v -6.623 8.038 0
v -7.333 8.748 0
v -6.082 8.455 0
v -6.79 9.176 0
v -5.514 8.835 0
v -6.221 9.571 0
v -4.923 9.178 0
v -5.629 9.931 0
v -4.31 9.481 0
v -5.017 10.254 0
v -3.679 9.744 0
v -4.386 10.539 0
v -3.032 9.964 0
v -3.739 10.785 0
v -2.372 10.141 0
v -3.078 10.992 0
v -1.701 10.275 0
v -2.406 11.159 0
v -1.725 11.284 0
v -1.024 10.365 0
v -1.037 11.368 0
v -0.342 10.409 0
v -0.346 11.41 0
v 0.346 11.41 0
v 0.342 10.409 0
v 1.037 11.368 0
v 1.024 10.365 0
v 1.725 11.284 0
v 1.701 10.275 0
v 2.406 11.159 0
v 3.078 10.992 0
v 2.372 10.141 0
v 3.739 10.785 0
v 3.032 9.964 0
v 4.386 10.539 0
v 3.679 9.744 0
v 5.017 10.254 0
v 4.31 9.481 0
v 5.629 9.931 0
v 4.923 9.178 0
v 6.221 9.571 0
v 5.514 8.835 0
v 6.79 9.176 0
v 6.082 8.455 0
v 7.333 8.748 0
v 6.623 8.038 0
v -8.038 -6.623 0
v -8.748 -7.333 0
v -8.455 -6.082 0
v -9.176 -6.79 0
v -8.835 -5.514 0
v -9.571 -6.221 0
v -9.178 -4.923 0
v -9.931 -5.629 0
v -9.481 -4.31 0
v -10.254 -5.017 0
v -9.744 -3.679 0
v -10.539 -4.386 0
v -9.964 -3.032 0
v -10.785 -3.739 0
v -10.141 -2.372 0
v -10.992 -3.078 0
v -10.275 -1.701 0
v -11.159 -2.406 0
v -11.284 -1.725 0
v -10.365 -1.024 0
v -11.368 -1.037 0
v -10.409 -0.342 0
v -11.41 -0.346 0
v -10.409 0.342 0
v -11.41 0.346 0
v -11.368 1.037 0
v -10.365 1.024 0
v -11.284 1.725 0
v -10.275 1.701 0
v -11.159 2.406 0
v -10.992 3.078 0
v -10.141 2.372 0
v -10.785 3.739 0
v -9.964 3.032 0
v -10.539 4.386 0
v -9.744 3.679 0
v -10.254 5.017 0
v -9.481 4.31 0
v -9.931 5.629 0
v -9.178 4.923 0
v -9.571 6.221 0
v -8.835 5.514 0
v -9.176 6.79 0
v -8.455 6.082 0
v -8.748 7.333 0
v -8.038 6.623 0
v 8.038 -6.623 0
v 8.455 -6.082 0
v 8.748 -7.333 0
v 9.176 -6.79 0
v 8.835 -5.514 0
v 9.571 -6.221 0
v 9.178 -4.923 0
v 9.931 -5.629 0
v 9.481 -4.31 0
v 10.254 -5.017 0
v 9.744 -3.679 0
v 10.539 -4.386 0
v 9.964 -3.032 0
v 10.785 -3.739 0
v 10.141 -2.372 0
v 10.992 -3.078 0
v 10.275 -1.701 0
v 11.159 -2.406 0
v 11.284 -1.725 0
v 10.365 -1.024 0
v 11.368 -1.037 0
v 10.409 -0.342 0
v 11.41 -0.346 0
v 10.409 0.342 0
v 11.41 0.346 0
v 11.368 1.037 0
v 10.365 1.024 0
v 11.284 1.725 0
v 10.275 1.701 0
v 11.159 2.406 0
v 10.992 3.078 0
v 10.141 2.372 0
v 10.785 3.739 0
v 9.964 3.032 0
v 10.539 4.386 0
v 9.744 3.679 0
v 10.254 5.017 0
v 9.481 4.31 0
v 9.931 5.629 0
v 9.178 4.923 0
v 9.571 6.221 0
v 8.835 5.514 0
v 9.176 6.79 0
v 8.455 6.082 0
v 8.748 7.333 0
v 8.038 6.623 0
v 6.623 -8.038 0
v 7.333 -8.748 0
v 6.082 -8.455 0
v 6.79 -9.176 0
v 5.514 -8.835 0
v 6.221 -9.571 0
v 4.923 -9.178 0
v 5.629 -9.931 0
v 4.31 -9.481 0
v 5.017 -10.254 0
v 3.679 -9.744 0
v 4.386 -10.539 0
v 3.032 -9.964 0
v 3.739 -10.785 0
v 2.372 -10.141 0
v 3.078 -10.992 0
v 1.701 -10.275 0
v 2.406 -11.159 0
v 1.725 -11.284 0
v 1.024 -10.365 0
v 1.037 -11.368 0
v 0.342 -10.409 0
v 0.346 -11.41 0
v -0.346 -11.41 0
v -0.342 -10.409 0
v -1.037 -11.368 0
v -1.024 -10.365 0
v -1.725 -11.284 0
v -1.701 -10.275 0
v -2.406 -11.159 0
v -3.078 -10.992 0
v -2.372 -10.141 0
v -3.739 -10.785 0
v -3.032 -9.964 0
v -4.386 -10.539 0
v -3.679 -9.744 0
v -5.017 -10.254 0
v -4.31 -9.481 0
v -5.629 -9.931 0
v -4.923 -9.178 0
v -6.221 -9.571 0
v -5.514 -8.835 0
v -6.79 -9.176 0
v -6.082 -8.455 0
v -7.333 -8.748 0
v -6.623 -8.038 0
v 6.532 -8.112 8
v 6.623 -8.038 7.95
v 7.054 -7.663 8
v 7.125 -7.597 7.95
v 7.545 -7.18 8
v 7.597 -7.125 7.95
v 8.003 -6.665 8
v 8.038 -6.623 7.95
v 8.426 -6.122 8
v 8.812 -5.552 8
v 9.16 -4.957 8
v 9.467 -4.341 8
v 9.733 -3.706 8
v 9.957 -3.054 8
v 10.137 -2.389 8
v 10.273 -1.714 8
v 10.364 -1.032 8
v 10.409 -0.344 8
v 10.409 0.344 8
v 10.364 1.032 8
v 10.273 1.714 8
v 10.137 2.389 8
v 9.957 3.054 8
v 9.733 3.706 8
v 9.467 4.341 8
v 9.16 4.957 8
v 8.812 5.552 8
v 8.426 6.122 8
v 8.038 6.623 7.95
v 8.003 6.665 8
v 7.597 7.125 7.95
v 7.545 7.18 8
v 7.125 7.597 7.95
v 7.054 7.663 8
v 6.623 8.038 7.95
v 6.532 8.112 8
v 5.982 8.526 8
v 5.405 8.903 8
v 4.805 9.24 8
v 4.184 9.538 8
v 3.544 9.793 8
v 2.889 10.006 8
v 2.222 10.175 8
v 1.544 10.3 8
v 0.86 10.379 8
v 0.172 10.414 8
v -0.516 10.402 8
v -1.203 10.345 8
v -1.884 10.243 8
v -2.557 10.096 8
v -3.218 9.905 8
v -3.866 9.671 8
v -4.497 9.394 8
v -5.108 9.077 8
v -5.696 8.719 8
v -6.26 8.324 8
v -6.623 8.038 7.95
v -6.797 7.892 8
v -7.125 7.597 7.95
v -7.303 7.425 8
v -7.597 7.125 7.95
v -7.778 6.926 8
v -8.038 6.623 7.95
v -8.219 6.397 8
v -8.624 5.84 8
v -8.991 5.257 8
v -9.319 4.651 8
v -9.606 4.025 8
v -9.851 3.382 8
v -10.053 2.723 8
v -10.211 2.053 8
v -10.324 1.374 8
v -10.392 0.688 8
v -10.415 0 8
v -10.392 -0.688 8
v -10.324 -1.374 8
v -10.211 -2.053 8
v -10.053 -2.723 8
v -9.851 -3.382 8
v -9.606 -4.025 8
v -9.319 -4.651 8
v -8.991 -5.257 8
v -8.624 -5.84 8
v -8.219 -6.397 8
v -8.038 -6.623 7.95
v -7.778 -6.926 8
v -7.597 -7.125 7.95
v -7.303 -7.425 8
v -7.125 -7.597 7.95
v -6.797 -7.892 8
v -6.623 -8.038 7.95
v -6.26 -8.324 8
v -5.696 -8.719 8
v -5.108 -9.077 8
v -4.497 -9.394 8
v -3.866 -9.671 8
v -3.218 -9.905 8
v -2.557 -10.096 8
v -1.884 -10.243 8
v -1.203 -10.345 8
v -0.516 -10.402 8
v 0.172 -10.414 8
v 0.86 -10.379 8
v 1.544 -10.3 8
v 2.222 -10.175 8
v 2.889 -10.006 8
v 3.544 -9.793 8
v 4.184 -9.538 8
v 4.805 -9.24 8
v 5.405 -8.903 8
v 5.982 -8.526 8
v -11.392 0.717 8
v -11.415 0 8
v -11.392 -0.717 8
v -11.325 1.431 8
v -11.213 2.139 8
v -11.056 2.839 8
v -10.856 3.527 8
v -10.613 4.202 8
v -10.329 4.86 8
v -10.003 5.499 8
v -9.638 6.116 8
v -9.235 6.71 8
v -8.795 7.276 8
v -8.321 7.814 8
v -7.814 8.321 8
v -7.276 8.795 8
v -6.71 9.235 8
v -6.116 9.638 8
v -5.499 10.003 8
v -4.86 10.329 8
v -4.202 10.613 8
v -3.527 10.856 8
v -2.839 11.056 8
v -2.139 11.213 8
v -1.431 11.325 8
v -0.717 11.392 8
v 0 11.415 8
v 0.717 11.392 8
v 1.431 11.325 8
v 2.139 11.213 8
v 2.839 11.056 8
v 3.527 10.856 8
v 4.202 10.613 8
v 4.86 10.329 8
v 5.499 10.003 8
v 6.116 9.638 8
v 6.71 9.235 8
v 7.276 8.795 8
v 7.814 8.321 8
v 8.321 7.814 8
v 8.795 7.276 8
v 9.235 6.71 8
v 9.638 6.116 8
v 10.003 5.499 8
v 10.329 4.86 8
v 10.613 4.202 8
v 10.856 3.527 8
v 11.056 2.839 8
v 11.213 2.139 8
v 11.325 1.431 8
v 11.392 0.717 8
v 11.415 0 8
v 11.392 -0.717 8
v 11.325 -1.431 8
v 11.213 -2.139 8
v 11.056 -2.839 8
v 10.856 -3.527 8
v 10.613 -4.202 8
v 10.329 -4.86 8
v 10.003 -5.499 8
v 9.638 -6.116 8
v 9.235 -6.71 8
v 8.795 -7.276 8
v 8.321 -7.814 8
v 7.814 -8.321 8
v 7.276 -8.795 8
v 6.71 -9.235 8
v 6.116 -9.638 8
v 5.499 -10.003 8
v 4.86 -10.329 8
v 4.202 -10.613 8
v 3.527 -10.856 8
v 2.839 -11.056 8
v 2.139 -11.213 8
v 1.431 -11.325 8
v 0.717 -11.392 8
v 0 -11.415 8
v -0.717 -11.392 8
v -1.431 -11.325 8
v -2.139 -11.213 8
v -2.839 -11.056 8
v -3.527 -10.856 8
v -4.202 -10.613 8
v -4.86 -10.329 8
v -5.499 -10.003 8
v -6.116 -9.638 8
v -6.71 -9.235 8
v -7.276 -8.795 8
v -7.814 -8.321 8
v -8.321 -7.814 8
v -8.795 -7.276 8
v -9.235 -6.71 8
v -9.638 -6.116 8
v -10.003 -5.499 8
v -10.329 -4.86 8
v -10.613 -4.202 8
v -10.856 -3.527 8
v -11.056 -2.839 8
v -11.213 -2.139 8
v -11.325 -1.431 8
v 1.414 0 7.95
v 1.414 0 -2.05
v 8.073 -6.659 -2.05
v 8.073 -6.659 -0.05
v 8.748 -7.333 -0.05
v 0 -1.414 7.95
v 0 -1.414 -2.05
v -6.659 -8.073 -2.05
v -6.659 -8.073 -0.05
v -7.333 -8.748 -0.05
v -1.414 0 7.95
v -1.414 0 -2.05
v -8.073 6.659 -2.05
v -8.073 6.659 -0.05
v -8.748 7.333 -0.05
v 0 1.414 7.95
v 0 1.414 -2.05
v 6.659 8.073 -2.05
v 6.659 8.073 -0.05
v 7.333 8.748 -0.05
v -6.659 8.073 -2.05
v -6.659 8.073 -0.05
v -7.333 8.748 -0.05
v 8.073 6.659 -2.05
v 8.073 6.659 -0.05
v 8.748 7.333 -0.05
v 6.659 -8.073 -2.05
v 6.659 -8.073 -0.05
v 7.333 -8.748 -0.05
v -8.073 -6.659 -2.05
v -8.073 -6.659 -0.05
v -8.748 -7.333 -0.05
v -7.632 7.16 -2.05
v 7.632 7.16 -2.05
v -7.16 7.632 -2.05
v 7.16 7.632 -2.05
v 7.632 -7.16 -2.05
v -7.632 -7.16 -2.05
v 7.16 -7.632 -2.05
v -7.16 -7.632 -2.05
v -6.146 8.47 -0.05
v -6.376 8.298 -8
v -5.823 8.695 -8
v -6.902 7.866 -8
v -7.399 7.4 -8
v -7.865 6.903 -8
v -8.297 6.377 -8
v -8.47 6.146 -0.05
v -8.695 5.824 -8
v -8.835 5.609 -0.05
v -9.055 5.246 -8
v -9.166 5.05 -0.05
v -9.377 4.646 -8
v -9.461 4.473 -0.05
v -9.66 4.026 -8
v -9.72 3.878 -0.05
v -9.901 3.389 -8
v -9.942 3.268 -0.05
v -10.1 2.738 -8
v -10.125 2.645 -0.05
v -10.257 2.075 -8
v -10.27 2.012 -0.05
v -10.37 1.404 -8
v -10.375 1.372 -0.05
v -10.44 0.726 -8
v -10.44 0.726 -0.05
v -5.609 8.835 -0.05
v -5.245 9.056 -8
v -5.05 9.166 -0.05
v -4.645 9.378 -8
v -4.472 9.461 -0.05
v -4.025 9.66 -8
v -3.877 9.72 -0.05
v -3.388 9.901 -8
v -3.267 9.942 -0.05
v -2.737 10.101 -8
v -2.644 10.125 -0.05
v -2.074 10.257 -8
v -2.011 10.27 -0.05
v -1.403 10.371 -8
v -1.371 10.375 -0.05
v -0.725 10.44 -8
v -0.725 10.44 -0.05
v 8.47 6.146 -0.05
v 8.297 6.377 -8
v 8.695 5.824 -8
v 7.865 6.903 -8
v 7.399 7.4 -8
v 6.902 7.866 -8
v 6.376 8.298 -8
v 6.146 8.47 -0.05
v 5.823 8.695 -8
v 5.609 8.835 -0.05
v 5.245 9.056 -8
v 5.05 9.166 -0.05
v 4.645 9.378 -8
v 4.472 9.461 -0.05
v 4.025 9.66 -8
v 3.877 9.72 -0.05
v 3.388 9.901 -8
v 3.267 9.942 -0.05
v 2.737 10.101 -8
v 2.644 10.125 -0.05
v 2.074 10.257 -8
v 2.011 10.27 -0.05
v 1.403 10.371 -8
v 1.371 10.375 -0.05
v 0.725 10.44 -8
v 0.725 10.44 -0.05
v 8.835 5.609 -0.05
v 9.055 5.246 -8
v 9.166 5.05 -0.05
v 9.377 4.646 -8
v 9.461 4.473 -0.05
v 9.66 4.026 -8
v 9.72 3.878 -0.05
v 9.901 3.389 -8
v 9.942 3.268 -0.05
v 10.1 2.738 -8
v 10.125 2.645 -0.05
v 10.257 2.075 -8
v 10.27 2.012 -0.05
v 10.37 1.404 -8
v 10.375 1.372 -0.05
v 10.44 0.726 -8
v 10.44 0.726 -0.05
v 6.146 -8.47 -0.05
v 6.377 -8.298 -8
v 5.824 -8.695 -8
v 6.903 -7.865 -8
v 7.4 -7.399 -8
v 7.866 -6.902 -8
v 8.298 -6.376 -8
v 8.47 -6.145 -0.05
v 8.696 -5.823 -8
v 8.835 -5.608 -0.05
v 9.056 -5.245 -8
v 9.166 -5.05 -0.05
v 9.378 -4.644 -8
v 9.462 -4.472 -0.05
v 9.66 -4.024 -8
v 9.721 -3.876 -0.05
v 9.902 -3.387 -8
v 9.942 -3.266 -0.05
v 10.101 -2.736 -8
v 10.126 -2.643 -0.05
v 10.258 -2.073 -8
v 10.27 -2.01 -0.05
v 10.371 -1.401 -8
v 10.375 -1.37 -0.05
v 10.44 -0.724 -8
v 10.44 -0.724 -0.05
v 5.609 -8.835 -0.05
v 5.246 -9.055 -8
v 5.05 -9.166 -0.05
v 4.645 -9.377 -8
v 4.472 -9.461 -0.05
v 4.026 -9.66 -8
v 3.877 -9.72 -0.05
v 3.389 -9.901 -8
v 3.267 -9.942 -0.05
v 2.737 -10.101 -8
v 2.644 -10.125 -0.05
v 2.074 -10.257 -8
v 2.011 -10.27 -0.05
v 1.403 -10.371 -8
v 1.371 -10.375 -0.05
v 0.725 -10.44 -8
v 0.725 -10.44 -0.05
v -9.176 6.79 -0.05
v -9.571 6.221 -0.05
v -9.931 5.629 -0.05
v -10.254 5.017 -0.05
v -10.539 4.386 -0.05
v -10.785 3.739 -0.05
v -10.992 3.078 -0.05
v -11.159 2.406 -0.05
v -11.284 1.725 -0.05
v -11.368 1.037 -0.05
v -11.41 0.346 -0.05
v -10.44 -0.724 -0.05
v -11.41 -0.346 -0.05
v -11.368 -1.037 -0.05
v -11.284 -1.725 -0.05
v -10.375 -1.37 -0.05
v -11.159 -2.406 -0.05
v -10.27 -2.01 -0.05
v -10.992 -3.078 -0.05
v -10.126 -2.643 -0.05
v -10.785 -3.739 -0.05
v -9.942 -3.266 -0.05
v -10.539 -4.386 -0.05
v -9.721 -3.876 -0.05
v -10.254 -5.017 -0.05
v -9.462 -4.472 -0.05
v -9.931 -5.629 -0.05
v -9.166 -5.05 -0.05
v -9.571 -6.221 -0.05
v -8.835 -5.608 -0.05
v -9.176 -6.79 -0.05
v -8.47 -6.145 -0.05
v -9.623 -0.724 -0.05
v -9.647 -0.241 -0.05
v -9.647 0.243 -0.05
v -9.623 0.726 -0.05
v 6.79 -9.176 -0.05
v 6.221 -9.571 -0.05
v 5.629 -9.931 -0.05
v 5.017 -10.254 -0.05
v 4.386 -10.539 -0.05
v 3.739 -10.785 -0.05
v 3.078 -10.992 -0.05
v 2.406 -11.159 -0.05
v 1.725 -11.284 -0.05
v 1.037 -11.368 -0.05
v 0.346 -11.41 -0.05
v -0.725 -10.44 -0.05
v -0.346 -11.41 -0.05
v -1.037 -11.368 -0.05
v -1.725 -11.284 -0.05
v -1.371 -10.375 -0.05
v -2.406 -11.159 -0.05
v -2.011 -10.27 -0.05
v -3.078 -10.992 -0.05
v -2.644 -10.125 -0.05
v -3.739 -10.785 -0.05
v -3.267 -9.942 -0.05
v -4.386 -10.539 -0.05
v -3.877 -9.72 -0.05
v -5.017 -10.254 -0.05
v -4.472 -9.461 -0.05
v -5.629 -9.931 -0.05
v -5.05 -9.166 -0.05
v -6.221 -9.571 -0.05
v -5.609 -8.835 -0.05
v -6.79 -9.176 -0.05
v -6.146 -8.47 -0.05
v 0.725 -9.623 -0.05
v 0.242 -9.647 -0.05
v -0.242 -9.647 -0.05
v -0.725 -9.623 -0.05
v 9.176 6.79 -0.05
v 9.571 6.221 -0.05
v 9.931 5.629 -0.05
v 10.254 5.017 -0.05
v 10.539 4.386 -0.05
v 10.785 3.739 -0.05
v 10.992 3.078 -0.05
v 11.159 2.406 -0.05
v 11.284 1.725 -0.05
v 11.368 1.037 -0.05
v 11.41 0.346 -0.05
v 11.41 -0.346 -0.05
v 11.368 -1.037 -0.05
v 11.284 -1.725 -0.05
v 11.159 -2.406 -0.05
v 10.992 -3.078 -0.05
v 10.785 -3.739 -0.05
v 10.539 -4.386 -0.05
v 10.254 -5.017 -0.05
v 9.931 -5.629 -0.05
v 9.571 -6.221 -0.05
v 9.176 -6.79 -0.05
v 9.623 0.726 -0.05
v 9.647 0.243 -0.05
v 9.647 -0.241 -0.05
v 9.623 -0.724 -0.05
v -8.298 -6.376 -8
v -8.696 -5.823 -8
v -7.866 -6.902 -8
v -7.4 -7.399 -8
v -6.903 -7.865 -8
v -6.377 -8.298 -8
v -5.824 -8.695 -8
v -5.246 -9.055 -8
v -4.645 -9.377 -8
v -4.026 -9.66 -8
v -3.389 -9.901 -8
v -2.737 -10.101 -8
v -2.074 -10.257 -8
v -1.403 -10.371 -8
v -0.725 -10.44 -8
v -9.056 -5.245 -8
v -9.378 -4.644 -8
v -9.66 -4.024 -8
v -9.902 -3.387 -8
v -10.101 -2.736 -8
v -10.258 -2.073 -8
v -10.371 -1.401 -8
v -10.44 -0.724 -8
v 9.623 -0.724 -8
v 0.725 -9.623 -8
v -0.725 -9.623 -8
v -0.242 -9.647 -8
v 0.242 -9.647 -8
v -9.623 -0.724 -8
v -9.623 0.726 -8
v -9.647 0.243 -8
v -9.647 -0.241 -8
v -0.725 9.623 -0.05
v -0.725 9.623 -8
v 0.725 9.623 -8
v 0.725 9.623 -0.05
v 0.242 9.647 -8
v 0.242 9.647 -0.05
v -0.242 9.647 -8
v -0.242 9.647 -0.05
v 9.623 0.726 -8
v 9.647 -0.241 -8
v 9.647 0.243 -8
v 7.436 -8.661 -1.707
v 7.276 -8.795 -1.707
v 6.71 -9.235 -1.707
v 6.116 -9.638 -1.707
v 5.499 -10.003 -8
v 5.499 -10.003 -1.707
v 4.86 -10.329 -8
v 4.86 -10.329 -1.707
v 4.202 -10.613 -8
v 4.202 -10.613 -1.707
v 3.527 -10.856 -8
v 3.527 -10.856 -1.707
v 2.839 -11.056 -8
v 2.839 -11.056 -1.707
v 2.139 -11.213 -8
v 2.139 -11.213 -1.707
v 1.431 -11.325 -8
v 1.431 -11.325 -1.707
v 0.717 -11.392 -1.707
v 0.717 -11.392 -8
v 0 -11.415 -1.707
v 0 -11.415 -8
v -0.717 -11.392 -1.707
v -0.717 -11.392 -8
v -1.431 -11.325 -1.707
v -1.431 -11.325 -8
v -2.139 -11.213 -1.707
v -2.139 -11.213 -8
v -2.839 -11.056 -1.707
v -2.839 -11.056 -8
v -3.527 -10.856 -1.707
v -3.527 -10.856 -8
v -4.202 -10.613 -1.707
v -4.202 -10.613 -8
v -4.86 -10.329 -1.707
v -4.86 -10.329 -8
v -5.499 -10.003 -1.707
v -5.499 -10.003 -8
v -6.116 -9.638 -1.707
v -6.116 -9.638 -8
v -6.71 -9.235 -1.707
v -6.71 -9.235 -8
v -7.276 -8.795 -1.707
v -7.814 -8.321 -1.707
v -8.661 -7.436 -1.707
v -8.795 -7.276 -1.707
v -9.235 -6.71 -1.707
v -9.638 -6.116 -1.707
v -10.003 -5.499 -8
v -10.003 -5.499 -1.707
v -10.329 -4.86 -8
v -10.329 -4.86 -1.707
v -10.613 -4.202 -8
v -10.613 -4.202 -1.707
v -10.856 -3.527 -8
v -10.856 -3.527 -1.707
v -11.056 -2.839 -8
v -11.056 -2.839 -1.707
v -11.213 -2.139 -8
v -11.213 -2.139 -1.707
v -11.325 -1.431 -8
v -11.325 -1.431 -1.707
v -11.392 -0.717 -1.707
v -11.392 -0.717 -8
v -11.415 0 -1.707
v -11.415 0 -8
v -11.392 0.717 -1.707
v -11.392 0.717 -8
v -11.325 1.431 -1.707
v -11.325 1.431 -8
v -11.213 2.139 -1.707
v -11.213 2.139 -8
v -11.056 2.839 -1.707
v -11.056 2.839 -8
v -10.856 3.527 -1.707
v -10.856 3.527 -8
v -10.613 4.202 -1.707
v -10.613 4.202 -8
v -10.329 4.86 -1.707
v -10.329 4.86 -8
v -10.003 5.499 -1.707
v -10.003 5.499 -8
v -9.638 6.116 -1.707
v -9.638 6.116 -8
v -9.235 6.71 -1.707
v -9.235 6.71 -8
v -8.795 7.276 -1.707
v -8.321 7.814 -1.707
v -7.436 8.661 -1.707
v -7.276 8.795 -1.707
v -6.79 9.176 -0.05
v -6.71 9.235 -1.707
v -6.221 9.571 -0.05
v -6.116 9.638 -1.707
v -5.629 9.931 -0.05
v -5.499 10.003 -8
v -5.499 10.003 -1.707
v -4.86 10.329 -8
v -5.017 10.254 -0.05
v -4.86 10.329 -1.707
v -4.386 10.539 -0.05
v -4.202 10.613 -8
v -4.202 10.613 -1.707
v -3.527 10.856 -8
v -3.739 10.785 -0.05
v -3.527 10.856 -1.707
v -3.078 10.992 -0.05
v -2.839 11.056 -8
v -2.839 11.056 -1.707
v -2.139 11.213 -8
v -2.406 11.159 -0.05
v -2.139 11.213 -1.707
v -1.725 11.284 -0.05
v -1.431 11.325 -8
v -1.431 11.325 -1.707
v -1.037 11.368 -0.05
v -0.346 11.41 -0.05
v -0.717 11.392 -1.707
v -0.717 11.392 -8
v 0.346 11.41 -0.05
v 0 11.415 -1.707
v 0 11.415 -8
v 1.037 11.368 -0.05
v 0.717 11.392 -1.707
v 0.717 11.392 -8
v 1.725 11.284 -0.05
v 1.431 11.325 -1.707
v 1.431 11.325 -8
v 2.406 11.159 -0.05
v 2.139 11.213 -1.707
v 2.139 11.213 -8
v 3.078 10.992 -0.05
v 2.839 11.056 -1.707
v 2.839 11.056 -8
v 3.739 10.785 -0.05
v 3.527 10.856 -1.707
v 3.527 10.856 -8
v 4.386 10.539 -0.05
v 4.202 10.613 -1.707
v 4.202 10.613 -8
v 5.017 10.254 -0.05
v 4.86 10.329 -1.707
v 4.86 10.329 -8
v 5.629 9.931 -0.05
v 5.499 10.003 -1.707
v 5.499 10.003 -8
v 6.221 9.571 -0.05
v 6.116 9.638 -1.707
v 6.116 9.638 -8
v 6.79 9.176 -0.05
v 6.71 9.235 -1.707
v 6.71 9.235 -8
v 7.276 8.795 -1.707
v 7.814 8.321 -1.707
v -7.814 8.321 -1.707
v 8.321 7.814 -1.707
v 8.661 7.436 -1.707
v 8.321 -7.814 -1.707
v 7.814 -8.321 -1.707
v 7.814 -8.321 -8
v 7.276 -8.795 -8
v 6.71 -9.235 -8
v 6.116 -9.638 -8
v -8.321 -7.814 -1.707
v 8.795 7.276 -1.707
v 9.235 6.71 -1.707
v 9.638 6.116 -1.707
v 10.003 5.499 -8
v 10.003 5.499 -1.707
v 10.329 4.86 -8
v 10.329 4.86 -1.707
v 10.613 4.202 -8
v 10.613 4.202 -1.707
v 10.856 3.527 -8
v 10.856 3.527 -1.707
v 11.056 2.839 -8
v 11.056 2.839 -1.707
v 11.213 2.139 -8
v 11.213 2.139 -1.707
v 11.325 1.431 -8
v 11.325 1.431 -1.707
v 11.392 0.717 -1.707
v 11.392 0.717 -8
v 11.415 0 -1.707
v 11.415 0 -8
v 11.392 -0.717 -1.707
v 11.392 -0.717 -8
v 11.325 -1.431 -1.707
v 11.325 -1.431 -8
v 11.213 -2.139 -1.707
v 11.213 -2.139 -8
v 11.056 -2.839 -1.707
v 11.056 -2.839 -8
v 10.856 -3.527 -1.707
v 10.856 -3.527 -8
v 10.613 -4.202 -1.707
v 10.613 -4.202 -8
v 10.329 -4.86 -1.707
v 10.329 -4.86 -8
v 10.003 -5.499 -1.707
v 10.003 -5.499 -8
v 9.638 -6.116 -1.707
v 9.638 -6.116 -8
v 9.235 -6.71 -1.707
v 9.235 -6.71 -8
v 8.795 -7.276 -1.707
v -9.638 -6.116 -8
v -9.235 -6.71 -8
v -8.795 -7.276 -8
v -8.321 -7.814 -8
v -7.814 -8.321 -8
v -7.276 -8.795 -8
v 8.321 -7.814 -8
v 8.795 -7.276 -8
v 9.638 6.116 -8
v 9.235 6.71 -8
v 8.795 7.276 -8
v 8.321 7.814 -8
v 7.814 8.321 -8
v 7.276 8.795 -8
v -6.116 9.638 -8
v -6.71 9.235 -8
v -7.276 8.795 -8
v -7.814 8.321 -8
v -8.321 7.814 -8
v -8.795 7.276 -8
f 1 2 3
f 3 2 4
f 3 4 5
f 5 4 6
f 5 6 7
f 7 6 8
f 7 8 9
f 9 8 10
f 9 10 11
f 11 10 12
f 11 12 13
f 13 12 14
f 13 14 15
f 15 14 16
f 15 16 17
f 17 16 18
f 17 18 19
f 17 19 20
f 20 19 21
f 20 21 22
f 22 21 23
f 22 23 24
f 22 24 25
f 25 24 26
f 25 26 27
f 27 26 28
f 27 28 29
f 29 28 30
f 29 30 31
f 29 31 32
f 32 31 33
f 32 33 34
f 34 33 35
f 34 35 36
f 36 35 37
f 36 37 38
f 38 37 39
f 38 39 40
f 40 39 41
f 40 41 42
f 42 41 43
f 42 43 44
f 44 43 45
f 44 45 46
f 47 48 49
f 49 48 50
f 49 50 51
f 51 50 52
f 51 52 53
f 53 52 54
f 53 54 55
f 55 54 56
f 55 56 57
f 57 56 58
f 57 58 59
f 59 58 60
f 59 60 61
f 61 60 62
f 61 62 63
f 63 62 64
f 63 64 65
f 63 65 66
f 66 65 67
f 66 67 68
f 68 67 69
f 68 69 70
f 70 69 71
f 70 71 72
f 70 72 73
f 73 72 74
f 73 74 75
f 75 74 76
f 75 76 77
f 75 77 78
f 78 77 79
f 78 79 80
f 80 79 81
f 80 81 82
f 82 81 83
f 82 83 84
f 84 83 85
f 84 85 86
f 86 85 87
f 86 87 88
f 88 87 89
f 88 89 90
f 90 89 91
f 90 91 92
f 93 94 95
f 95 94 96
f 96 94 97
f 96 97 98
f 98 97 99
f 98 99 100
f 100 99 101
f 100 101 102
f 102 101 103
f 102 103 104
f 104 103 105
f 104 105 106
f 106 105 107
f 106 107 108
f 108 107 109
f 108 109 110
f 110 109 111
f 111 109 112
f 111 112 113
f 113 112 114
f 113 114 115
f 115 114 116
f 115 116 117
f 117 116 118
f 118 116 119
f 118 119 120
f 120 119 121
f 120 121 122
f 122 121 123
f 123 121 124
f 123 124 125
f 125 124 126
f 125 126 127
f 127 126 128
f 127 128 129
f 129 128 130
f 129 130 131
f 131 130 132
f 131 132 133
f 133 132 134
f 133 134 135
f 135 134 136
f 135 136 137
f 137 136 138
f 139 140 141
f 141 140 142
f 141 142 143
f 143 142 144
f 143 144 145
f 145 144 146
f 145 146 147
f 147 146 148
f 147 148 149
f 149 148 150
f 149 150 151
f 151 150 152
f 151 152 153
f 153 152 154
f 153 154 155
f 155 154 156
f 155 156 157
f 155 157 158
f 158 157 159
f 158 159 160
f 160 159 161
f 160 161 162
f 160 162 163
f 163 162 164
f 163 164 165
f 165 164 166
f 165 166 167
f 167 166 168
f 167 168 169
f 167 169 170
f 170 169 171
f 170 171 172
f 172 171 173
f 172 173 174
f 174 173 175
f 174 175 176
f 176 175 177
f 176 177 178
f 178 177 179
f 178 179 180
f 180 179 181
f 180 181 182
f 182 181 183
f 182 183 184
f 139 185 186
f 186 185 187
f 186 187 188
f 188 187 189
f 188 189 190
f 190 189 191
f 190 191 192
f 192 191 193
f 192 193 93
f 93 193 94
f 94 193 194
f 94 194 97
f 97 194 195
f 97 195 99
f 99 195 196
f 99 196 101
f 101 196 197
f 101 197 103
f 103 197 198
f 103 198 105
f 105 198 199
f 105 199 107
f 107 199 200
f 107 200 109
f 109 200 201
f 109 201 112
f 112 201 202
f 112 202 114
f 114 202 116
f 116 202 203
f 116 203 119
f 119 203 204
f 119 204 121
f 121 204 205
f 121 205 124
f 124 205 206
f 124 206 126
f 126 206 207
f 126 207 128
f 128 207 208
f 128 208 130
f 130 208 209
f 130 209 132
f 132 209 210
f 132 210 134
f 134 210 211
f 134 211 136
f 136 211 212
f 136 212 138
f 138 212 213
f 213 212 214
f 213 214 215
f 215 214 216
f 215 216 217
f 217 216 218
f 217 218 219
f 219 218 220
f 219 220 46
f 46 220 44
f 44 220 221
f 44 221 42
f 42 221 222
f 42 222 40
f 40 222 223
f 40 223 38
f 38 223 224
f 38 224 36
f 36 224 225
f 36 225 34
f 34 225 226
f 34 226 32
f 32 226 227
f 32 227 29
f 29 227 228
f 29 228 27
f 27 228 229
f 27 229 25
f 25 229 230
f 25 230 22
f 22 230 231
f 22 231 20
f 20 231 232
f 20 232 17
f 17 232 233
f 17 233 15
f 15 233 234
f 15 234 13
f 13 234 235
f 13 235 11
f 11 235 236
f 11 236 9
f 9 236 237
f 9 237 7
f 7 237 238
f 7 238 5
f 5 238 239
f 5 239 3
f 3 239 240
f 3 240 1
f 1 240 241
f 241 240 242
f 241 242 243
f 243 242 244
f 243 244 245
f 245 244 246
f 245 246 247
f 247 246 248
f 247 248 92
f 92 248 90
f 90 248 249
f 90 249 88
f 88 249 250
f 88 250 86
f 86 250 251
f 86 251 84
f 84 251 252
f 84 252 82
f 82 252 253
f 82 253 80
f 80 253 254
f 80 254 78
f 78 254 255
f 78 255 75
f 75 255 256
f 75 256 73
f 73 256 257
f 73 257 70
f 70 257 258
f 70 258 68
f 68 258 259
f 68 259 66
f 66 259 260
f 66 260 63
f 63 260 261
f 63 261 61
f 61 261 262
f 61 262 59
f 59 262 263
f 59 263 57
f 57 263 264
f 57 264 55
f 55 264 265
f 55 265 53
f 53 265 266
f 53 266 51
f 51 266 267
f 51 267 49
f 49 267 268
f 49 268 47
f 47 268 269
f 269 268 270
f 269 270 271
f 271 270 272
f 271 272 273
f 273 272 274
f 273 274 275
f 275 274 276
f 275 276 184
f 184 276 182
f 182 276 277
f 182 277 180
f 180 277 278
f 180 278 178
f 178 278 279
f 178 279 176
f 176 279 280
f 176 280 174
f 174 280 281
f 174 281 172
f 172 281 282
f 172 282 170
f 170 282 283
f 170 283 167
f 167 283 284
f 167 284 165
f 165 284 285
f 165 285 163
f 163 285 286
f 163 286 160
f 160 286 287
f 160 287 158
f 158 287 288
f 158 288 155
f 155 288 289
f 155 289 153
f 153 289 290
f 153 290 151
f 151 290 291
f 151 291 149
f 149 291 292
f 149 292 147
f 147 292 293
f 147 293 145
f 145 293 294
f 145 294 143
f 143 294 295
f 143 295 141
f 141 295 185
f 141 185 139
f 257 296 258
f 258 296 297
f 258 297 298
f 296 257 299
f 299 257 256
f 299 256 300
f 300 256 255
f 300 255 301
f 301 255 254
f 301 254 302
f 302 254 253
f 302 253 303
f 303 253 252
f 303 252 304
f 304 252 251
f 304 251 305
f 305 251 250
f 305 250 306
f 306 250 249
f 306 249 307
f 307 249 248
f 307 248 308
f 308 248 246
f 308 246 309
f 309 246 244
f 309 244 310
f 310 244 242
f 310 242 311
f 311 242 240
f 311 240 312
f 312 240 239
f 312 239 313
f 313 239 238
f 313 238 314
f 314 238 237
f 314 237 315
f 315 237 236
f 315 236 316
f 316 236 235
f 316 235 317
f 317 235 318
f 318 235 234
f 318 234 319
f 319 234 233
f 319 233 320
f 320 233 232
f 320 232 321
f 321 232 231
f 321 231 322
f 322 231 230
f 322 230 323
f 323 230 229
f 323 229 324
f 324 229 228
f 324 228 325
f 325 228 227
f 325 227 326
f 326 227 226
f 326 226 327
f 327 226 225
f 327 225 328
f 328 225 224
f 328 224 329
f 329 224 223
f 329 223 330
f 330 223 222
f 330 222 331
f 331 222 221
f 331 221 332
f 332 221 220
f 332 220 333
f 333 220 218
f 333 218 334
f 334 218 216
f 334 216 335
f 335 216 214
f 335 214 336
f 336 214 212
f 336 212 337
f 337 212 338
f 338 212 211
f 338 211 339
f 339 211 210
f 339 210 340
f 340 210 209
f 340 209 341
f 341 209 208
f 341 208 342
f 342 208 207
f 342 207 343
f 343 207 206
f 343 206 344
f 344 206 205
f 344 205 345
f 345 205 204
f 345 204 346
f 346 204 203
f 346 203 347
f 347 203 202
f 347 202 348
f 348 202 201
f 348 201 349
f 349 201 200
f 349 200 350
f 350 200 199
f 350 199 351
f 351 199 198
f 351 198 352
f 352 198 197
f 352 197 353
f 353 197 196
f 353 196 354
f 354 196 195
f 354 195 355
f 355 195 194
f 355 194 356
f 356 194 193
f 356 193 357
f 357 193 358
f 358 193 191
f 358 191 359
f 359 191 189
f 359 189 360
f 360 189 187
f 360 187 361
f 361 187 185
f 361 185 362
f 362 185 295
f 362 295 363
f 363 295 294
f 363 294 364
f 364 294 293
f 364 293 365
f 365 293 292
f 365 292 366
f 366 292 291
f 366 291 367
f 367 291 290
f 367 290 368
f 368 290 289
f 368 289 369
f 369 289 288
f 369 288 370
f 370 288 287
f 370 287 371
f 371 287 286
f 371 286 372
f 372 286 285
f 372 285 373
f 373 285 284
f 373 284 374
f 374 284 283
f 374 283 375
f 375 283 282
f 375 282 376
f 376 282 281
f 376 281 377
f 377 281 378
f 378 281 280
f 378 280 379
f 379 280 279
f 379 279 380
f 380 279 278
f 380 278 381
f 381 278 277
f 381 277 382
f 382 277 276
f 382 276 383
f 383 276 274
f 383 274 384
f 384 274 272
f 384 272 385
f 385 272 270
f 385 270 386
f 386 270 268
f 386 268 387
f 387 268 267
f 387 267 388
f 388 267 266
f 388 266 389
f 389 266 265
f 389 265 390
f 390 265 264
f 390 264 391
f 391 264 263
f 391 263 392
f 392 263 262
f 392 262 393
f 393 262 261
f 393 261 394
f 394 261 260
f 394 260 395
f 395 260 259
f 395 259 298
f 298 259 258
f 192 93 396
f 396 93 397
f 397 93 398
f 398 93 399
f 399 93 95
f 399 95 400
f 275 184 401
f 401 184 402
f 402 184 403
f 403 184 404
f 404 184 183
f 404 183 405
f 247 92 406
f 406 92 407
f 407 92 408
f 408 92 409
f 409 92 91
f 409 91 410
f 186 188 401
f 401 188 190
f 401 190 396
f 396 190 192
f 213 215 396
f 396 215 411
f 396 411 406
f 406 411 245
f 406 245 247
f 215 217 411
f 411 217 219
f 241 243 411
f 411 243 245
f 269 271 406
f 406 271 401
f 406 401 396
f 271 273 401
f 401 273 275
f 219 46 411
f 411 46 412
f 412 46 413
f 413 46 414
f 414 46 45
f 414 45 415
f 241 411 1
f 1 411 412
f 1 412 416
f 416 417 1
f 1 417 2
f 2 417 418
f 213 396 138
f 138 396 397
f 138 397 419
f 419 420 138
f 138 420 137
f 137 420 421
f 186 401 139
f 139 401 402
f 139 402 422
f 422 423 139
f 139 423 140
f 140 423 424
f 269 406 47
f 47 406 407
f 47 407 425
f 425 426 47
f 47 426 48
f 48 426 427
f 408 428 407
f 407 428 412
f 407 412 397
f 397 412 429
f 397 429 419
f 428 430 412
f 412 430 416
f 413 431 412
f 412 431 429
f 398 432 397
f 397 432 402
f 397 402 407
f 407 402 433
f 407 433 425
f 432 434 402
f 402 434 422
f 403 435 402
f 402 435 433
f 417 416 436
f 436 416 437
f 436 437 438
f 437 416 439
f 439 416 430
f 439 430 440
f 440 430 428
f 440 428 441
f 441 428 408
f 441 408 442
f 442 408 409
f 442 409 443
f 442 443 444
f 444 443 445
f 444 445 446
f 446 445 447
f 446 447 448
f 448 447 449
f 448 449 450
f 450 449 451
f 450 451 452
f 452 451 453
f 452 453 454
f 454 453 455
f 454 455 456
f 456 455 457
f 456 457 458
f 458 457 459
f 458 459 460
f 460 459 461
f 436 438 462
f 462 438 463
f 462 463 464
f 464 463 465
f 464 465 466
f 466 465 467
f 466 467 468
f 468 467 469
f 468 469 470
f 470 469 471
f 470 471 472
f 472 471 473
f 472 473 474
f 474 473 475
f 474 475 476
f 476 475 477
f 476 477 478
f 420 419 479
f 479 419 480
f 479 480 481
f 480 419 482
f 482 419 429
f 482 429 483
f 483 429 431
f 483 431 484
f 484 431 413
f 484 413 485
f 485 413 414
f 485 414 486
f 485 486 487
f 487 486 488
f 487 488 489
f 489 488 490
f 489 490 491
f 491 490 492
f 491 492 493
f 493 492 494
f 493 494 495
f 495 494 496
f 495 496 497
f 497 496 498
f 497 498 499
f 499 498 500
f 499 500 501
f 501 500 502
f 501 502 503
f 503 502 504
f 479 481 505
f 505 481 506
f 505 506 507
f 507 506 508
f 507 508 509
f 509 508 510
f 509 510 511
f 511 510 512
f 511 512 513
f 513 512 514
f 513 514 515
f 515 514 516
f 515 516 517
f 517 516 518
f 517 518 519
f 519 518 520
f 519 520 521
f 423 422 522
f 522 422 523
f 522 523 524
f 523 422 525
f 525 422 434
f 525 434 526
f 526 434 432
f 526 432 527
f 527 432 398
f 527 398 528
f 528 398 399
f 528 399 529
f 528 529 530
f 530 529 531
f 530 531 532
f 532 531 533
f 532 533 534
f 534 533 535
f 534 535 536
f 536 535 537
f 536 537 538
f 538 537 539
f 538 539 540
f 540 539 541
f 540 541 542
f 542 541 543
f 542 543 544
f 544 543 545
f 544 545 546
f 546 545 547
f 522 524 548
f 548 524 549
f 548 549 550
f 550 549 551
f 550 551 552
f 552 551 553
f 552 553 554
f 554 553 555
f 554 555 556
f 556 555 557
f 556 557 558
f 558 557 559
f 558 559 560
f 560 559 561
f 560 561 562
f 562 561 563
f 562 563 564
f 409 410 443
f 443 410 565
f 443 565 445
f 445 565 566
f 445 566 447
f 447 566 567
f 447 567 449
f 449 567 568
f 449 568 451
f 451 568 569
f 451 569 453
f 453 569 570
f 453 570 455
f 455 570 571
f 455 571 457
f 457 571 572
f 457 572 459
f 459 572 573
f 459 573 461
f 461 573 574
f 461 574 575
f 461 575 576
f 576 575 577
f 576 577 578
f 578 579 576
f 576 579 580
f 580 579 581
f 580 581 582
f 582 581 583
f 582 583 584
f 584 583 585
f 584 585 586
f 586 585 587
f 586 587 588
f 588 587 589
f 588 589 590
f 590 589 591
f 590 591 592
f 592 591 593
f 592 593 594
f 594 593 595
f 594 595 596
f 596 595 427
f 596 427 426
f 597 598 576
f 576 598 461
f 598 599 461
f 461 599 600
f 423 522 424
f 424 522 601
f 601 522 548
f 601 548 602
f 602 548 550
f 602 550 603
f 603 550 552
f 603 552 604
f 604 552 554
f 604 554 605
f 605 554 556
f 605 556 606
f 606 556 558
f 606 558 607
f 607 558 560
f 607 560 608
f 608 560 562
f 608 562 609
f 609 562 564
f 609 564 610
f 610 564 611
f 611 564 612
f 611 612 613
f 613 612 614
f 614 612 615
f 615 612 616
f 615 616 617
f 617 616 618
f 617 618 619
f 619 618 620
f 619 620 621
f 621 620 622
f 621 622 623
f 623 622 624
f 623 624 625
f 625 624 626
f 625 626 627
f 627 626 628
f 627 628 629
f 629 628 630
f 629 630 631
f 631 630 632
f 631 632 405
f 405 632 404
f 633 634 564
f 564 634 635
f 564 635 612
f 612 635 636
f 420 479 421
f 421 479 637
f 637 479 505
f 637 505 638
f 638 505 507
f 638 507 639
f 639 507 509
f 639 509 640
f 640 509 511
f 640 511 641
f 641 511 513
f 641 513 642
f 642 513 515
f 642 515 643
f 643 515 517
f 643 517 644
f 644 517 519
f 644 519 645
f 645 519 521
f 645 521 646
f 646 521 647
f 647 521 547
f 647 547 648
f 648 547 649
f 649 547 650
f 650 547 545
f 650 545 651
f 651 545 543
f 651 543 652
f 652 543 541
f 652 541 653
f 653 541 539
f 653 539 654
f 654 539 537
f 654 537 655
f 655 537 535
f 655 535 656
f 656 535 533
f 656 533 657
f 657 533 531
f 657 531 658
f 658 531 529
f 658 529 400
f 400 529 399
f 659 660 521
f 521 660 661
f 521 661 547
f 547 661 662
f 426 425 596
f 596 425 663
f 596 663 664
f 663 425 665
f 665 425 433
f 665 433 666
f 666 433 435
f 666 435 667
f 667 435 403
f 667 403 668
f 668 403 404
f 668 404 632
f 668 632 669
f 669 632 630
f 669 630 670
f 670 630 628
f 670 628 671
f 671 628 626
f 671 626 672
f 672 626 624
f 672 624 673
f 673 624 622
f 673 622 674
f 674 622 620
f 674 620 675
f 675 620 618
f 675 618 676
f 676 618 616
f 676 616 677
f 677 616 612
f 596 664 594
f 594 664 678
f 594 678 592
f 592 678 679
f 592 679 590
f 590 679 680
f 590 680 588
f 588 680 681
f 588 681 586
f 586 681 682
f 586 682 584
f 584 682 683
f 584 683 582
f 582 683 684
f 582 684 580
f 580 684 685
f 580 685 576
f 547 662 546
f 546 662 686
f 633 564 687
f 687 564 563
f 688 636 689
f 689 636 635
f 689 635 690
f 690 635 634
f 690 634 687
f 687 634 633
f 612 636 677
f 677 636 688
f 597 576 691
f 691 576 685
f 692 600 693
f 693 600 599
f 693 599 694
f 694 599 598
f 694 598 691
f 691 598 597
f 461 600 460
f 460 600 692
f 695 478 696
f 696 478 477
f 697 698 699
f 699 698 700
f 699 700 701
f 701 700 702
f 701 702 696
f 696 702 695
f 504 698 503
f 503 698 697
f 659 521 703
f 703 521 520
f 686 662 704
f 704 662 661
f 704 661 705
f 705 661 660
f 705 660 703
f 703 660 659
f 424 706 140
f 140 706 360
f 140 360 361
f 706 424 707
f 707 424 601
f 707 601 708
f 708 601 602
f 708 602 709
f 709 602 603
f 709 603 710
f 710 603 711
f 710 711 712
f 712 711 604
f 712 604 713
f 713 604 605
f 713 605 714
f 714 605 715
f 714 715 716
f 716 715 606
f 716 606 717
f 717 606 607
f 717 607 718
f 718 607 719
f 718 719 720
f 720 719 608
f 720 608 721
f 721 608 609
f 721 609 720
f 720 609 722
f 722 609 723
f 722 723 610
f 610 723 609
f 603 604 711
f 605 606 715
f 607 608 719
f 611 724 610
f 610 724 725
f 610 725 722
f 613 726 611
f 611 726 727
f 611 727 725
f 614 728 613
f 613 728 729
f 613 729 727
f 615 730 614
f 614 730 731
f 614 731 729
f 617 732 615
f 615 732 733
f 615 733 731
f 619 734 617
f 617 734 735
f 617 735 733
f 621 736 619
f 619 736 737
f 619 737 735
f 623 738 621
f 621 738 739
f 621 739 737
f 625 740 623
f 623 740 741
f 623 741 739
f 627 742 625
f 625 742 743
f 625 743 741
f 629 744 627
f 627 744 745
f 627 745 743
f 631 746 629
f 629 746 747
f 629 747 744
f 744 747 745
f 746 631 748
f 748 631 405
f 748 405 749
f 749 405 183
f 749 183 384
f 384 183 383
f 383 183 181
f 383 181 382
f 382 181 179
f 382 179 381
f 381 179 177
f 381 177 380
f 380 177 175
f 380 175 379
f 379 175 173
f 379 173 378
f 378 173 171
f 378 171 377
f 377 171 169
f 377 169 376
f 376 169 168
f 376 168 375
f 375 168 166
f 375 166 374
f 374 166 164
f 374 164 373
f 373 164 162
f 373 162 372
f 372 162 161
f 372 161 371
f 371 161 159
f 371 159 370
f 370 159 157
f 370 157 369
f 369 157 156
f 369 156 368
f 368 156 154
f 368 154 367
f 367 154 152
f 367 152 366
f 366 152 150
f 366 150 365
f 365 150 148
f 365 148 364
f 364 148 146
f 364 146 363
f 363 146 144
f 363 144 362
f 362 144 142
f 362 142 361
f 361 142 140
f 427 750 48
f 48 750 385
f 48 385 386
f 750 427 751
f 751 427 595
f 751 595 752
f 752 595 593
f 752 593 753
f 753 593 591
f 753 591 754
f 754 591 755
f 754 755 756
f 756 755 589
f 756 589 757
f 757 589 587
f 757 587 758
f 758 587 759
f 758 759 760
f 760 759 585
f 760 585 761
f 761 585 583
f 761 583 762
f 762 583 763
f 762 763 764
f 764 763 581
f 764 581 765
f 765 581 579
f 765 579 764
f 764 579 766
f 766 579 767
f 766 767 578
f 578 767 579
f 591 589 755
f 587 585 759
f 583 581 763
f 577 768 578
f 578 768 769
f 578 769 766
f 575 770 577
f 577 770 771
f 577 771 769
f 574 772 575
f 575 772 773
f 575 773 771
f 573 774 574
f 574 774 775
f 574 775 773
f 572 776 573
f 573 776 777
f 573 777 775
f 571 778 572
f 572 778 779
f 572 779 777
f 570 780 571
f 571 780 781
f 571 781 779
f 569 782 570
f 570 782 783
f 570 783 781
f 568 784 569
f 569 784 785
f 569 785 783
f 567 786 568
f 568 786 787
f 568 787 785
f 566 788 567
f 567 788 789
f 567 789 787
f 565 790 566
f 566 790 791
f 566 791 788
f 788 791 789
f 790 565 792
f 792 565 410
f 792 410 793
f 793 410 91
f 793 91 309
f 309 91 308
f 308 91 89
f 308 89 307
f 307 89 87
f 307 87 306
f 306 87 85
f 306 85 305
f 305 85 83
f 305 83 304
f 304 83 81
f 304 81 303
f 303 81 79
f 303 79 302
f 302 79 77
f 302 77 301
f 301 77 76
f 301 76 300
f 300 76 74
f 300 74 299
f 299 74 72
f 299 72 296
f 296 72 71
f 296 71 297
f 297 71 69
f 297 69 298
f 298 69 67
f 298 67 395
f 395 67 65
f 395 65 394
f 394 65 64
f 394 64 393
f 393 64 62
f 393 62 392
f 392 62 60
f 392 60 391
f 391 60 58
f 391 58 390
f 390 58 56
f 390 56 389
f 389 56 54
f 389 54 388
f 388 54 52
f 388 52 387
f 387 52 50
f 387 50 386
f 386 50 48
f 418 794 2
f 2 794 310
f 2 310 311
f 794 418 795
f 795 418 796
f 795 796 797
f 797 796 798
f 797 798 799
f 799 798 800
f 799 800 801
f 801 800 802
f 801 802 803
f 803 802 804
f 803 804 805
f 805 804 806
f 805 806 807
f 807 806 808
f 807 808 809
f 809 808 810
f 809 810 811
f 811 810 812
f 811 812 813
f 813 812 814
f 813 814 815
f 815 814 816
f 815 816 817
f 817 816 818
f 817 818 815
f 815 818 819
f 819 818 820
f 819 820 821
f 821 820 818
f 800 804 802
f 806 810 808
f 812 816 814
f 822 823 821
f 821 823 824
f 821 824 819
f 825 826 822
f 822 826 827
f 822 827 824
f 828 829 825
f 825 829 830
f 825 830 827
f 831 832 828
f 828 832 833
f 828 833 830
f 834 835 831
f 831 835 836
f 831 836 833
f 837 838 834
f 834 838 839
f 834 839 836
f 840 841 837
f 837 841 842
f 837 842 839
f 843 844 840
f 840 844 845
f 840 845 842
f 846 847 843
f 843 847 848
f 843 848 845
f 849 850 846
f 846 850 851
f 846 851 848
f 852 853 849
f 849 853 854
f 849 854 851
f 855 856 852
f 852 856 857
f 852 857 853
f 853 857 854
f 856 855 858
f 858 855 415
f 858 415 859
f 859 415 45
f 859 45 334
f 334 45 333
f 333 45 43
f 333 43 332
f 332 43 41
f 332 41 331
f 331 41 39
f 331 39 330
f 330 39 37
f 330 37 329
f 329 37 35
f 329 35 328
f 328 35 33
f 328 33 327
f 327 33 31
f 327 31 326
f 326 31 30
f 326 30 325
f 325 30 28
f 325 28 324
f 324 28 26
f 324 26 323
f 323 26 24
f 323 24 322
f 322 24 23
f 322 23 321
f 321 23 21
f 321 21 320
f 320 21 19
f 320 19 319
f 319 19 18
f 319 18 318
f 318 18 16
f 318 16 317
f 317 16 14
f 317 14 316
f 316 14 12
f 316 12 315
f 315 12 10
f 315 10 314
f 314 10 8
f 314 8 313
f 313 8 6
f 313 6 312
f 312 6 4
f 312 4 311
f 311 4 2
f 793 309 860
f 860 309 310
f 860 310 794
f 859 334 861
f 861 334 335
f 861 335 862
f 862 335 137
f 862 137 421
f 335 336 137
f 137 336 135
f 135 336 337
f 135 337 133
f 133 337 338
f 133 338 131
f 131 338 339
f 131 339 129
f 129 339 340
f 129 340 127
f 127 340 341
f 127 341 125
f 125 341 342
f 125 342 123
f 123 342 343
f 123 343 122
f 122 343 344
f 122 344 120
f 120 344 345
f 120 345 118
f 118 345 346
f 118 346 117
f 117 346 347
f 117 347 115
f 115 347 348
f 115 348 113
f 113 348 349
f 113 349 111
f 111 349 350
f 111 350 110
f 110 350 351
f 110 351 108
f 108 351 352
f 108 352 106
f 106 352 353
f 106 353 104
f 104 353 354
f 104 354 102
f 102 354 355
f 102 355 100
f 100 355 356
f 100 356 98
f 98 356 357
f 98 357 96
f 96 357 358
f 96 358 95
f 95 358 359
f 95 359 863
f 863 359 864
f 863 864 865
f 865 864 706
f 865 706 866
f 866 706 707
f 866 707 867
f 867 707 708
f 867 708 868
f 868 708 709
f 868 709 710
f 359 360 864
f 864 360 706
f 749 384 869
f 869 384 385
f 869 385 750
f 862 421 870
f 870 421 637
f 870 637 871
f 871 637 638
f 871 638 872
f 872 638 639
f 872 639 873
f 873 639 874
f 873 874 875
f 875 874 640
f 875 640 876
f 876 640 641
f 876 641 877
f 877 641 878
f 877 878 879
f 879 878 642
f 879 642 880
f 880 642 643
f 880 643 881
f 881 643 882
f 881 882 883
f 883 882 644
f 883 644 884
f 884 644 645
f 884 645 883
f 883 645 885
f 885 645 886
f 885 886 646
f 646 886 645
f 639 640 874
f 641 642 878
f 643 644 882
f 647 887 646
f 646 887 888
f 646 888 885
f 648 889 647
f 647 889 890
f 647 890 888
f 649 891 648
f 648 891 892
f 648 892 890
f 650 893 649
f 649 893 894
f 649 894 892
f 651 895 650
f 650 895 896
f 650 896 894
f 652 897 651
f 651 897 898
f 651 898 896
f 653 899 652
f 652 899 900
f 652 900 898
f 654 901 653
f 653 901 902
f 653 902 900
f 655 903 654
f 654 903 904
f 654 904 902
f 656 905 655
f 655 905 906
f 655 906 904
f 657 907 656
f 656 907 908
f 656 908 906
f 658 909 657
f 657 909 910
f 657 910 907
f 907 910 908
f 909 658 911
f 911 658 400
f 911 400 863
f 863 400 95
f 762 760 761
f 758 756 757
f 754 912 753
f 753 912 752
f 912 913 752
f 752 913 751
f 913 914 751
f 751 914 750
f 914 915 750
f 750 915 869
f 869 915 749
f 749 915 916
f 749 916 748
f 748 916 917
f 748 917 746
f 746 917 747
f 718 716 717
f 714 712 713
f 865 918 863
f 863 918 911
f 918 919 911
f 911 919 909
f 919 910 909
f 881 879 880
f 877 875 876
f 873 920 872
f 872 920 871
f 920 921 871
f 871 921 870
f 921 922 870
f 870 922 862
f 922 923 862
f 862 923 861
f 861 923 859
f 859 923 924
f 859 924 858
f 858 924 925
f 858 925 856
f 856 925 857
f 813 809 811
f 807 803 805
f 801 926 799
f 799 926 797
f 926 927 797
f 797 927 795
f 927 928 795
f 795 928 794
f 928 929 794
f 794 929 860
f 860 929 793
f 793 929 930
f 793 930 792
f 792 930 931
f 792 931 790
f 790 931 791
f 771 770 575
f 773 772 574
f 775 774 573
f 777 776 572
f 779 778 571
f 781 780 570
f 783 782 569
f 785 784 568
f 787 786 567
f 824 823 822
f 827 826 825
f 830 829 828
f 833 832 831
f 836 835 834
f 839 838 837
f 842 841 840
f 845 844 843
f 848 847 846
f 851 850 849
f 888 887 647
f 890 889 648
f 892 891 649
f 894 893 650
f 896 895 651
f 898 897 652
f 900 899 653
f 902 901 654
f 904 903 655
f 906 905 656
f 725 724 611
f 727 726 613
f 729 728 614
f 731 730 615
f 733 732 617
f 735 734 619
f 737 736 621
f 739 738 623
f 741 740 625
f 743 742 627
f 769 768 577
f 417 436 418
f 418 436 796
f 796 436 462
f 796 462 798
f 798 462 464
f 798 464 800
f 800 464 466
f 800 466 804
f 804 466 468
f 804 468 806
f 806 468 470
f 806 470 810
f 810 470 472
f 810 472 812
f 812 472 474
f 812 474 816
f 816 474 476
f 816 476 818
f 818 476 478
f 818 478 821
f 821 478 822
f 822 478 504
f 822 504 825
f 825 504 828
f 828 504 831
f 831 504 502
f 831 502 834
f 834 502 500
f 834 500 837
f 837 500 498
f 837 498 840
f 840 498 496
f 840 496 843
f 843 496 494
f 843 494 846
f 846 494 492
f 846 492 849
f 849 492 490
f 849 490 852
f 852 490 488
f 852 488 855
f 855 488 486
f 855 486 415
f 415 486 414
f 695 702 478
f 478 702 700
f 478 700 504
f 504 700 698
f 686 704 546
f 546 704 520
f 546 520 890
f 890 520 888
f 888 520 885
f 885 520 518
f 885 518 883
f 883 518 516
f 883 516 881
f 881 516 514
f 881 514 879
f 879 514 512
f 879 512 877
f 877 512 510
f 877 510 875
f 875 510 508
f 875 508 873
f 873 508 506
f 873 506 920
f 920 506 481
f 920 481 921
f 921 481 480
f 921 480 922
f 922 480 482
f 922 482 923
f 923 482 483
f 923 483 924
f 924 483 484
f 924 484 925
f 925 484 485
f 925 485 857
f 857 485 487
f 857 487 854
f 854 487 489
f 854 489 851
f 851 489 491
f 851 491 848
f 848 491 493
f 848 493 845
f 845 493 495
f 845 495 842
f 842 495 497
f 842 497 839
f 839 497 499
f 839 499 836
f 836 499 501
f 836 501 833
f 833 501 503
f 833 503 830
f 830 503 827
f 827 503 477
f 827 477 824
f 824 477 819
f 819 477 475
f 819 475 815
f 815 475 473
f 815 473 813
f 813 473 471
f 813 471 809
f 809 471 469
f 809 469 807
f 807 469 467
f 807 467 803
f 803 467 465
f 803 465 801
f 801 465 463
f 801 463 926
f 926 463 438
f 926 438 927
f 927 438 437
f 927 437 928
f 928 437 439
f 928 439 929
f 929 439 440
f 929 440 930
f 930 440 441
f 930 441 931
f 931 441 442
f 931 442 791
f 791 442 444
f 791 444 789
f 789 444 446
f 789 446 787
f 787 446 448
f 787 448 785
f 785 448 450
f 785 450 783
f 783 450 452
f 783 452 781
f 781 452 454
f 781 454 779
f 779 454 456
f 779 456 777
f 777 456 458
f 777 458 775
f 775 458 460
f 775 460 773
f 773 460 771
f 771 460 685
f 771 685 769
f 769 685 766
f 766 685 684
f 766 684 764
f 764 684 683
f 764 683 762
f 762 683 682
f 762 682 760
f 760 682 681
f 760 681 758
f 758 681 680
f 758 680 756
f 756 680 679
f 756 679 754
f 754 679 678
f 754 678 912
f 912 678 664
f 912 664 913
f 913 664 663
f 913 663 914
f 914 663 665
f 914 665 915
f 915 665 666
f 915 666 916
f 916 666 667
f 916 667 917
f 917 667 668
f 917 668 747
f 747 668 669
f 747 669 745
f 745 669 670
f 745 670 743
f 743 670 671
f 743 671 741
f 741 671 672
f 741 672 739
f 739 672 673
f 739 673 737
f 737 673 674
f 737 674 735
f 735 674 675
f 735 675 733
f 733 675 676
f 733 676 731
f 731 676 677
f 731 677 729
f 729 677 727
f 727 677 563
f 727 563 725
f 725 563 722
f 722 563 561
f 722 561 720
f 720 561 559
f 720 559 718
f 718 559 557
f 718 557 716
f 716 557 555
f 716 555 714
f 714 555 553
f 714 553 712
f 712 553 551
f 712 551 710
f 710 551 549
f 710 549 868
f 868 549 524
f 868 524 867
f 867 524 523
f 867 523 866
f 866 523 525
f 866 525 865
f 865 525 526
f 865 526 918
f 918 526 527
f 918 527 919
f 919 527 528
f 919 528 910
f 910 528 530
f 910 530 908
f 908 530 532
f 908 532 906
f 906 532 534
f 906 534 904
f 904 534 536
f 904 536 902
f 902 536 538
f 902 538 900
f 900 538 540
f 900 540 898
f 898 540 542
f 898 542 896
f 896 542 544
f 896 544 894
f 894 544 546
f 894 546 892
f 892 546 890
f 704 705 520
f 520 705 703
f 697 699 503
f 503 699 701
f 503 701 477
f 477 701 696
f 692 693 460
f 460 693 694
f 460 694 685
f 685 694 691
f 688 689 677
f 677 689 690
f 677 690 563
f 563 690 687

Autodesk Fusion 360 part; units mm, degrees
sketch "Tool" plane through (0, 0, 0) normal (0, 0, 1) x (1, 0, 0)
  circle A0 centre (0, 0) radius 10.415
  circle A1 centre (0, 0) radius 9.6
  line L0 (-10.415, 0.0013) -> (10.415, 0.0013) construction
  line L1 (0, 10.485) -> (0, -10.415) construction
  line L2 (-10.415, -0.7737) -> (10.415, -0.7737)
  line L3 (-10.415, 0.7763) -> (10.415, 0.7763)
  line L4 (-0.775, 10.485) -> (-0.775, -10.415)
  line L5 (0.775, 10.485) -> (0.775, -10.415)
  circle A2 centre (0, 0) radius 11.415
  dimension "d5" = 20.83
  dimension "d6" = 19.2
  dimension "d7" = 0.775
  dimension "d8" = -0.775
  dimension "d9" = 0.775
  dimension "d10" = -0.775
  dimension "d13" = 1
extrude "Extrude1" add sketch "Tool" against normal blind 8 contours A0 A1 L2 L3 | A0 A1 L4 L5 | A0 A1 L4 L5 | A0 A1 L2 L3 | A2
move_face "OffsetFaces1" offset -0.05 17 faces at (10.7291, 0.0008, 0) (1.7545, 10.2662, -5.3333) (9.5903, 0.4322, -2.6667) (8.0289, -6.6339, -5.3333) (9.8411, 0.7763, -2.6667) (9.8413, -0.7737, -2.6667) (0.775, 10.1136, -5.3333) (-0.603, 9.581, -5.3333) (-7.0069, 7.7056, -5.3333) (-10.1137, -0.7737, -2.6667) (-0.775, 10.1136, -2.6667) (0.775, -9.8412, -5.3333) (0.603, -9.581, -5.3333) (-1.2662, -10.3377, -5.3333) (-9.5904, -0.4296, -5.3333) (-0.775, -9.8412, -2.6667) (-10.1135, 0.7763, -2.6667)
sketch "Sketch2" plane through (0, 0, -0.05) normal (0, 0, 1) x (-1, 0, 0)
  arc A0 (-9.6228, 0.7237) -> (-9.6226, -0.7263) centre (0, 0) ccw
  line L0 (-9.6228, 0.7237) -> (-10.4399, 0.7237)
  arc A1 (-0.725, 10.4399) -> (-10.4399, 0.7237) centre (0, 0) ccw
  line L1 (-0.725, 10.4399) -> (-0.725, 9.6227)
  arc A2 (0.725, 9.6227) -> (-0.725, 9.6227) centre (0, 0) ccw
  line L2 (0.725, 9.6227) -> (0.725, 10.4399)
  arc A3 (10.4399, 0.7237) -> (0.725, 10.4399) centre (0, 0) ccw
  line L3 (10.4399, 0.7237) -> (9.6228, 0.7237)
  arc A4 (9.6226, -0.7263) -> (9.6228, 0.7237) centre (0, 0) ccw
  line L4 (9.6226, -0.7263) -> (10.4398, -0.7263)
  arc A5 (0.725, -10.4399) -> (10.4398, -0.7263) centre (0, 0) ccw
  line L5 (0.725, -10.4399) -> (0.725, -9.6227)
  arc A6 (-0.725, -9.6227) -> (0.725, -9.6227) centre (0, 0) ccw
  line L6 (-0.725, -9.6227) -> (-0.725, -10.4399)
  arc A7 (-10.4398, -0.7263) -> (-0.725, -10.4399) centre (0, 0) ccw
  line L7 (-10.4398, -0.7263) -> (-9.6226, -0.7263)
  circle A8 centre (0, 0) radius 11.415
  line L8 (0, 0) -> (8.0716, -8.0716) construction
  line L9 (0, 0) -> (11.415, 0) construction
  line L10 (0, 0) -> (8.0716, 8.0716) construction
  line L11 (0, 0) -> (11.415, 0) construction
  line L12 (0, 0) -> (-8.0716, -8.0716) construction
  line L13 (0, 0) -> (-8.0716, 8.0716) construction
  line L14 (0.7071, 0.7071) -> (8.7787, -7.3645)
  line L15 (0.7071, 0.7071) -> (-7.3645, 8.7787)
  line L16 (-0.7071, -0.7071) -> (-8.7787, 7.3645)
  line L17 (-0.7071, -0.7071) -> (7.3645, -8.7787)
  line L18 (0.7071, -0.7071) -> (8.7787, 7.3645)
  line L19 (0.7071, -0.7071) -> (-7.3645, -8.7787)
  line L20 (-0.7071, 0.7071) -> (7.3645, 8.7787)
  line L21 (-0.7071, 0.7071) -> (-8.7787, -7.3645)
  dimension "d17" = 45
  dimension "d18" = 45
  dimension "d19" = 90
  dimension "d20" = 1
  dimension "d21" = -1
  dimension "d22" = 1
  dimension "d23" = -1
extrude "Extrude2" add sketch "Sketch2" along normal blind 8 and the other way blind 2 contours A1 A8 L15 L16 | A1 L15 L16 L20 L21 | A7 L16 L17 L19 L21 | A7 A8 L19 L21 | L14 L15 L16 L17 L18 L19 L20 L21 | A3 L14 L15 L18 L20 | A5 L14 L17 L18 L19 | A3 A8 L18 L20 | A5 A8 L14 L17
extrude "Extrude3" add sketch "Tool" along normal blind 8
equation "outside_diamter = 20.83 mm"
equation "wall_thickness = 1.63 mm"
equation "tool_teeth_width = 1.55 mm"
equation "inside_diamter = outside_diamter - wall_thickness"
equation "d5 = outside_diamter"
equation "d6 = inside_diamter"
equation "d7 = tool_teeth_width / 2"
equation "d8 = -( tool_teeth_width / 2 )"
equation "d9 = tool_teeth_width / 2"
equation "d10 = -( tool_teeth_width / 2 )"
equation "tool_thickness = 1 mm"
equation "tool_depth = 8 mm"
equation "d13 = tool_thickness"
